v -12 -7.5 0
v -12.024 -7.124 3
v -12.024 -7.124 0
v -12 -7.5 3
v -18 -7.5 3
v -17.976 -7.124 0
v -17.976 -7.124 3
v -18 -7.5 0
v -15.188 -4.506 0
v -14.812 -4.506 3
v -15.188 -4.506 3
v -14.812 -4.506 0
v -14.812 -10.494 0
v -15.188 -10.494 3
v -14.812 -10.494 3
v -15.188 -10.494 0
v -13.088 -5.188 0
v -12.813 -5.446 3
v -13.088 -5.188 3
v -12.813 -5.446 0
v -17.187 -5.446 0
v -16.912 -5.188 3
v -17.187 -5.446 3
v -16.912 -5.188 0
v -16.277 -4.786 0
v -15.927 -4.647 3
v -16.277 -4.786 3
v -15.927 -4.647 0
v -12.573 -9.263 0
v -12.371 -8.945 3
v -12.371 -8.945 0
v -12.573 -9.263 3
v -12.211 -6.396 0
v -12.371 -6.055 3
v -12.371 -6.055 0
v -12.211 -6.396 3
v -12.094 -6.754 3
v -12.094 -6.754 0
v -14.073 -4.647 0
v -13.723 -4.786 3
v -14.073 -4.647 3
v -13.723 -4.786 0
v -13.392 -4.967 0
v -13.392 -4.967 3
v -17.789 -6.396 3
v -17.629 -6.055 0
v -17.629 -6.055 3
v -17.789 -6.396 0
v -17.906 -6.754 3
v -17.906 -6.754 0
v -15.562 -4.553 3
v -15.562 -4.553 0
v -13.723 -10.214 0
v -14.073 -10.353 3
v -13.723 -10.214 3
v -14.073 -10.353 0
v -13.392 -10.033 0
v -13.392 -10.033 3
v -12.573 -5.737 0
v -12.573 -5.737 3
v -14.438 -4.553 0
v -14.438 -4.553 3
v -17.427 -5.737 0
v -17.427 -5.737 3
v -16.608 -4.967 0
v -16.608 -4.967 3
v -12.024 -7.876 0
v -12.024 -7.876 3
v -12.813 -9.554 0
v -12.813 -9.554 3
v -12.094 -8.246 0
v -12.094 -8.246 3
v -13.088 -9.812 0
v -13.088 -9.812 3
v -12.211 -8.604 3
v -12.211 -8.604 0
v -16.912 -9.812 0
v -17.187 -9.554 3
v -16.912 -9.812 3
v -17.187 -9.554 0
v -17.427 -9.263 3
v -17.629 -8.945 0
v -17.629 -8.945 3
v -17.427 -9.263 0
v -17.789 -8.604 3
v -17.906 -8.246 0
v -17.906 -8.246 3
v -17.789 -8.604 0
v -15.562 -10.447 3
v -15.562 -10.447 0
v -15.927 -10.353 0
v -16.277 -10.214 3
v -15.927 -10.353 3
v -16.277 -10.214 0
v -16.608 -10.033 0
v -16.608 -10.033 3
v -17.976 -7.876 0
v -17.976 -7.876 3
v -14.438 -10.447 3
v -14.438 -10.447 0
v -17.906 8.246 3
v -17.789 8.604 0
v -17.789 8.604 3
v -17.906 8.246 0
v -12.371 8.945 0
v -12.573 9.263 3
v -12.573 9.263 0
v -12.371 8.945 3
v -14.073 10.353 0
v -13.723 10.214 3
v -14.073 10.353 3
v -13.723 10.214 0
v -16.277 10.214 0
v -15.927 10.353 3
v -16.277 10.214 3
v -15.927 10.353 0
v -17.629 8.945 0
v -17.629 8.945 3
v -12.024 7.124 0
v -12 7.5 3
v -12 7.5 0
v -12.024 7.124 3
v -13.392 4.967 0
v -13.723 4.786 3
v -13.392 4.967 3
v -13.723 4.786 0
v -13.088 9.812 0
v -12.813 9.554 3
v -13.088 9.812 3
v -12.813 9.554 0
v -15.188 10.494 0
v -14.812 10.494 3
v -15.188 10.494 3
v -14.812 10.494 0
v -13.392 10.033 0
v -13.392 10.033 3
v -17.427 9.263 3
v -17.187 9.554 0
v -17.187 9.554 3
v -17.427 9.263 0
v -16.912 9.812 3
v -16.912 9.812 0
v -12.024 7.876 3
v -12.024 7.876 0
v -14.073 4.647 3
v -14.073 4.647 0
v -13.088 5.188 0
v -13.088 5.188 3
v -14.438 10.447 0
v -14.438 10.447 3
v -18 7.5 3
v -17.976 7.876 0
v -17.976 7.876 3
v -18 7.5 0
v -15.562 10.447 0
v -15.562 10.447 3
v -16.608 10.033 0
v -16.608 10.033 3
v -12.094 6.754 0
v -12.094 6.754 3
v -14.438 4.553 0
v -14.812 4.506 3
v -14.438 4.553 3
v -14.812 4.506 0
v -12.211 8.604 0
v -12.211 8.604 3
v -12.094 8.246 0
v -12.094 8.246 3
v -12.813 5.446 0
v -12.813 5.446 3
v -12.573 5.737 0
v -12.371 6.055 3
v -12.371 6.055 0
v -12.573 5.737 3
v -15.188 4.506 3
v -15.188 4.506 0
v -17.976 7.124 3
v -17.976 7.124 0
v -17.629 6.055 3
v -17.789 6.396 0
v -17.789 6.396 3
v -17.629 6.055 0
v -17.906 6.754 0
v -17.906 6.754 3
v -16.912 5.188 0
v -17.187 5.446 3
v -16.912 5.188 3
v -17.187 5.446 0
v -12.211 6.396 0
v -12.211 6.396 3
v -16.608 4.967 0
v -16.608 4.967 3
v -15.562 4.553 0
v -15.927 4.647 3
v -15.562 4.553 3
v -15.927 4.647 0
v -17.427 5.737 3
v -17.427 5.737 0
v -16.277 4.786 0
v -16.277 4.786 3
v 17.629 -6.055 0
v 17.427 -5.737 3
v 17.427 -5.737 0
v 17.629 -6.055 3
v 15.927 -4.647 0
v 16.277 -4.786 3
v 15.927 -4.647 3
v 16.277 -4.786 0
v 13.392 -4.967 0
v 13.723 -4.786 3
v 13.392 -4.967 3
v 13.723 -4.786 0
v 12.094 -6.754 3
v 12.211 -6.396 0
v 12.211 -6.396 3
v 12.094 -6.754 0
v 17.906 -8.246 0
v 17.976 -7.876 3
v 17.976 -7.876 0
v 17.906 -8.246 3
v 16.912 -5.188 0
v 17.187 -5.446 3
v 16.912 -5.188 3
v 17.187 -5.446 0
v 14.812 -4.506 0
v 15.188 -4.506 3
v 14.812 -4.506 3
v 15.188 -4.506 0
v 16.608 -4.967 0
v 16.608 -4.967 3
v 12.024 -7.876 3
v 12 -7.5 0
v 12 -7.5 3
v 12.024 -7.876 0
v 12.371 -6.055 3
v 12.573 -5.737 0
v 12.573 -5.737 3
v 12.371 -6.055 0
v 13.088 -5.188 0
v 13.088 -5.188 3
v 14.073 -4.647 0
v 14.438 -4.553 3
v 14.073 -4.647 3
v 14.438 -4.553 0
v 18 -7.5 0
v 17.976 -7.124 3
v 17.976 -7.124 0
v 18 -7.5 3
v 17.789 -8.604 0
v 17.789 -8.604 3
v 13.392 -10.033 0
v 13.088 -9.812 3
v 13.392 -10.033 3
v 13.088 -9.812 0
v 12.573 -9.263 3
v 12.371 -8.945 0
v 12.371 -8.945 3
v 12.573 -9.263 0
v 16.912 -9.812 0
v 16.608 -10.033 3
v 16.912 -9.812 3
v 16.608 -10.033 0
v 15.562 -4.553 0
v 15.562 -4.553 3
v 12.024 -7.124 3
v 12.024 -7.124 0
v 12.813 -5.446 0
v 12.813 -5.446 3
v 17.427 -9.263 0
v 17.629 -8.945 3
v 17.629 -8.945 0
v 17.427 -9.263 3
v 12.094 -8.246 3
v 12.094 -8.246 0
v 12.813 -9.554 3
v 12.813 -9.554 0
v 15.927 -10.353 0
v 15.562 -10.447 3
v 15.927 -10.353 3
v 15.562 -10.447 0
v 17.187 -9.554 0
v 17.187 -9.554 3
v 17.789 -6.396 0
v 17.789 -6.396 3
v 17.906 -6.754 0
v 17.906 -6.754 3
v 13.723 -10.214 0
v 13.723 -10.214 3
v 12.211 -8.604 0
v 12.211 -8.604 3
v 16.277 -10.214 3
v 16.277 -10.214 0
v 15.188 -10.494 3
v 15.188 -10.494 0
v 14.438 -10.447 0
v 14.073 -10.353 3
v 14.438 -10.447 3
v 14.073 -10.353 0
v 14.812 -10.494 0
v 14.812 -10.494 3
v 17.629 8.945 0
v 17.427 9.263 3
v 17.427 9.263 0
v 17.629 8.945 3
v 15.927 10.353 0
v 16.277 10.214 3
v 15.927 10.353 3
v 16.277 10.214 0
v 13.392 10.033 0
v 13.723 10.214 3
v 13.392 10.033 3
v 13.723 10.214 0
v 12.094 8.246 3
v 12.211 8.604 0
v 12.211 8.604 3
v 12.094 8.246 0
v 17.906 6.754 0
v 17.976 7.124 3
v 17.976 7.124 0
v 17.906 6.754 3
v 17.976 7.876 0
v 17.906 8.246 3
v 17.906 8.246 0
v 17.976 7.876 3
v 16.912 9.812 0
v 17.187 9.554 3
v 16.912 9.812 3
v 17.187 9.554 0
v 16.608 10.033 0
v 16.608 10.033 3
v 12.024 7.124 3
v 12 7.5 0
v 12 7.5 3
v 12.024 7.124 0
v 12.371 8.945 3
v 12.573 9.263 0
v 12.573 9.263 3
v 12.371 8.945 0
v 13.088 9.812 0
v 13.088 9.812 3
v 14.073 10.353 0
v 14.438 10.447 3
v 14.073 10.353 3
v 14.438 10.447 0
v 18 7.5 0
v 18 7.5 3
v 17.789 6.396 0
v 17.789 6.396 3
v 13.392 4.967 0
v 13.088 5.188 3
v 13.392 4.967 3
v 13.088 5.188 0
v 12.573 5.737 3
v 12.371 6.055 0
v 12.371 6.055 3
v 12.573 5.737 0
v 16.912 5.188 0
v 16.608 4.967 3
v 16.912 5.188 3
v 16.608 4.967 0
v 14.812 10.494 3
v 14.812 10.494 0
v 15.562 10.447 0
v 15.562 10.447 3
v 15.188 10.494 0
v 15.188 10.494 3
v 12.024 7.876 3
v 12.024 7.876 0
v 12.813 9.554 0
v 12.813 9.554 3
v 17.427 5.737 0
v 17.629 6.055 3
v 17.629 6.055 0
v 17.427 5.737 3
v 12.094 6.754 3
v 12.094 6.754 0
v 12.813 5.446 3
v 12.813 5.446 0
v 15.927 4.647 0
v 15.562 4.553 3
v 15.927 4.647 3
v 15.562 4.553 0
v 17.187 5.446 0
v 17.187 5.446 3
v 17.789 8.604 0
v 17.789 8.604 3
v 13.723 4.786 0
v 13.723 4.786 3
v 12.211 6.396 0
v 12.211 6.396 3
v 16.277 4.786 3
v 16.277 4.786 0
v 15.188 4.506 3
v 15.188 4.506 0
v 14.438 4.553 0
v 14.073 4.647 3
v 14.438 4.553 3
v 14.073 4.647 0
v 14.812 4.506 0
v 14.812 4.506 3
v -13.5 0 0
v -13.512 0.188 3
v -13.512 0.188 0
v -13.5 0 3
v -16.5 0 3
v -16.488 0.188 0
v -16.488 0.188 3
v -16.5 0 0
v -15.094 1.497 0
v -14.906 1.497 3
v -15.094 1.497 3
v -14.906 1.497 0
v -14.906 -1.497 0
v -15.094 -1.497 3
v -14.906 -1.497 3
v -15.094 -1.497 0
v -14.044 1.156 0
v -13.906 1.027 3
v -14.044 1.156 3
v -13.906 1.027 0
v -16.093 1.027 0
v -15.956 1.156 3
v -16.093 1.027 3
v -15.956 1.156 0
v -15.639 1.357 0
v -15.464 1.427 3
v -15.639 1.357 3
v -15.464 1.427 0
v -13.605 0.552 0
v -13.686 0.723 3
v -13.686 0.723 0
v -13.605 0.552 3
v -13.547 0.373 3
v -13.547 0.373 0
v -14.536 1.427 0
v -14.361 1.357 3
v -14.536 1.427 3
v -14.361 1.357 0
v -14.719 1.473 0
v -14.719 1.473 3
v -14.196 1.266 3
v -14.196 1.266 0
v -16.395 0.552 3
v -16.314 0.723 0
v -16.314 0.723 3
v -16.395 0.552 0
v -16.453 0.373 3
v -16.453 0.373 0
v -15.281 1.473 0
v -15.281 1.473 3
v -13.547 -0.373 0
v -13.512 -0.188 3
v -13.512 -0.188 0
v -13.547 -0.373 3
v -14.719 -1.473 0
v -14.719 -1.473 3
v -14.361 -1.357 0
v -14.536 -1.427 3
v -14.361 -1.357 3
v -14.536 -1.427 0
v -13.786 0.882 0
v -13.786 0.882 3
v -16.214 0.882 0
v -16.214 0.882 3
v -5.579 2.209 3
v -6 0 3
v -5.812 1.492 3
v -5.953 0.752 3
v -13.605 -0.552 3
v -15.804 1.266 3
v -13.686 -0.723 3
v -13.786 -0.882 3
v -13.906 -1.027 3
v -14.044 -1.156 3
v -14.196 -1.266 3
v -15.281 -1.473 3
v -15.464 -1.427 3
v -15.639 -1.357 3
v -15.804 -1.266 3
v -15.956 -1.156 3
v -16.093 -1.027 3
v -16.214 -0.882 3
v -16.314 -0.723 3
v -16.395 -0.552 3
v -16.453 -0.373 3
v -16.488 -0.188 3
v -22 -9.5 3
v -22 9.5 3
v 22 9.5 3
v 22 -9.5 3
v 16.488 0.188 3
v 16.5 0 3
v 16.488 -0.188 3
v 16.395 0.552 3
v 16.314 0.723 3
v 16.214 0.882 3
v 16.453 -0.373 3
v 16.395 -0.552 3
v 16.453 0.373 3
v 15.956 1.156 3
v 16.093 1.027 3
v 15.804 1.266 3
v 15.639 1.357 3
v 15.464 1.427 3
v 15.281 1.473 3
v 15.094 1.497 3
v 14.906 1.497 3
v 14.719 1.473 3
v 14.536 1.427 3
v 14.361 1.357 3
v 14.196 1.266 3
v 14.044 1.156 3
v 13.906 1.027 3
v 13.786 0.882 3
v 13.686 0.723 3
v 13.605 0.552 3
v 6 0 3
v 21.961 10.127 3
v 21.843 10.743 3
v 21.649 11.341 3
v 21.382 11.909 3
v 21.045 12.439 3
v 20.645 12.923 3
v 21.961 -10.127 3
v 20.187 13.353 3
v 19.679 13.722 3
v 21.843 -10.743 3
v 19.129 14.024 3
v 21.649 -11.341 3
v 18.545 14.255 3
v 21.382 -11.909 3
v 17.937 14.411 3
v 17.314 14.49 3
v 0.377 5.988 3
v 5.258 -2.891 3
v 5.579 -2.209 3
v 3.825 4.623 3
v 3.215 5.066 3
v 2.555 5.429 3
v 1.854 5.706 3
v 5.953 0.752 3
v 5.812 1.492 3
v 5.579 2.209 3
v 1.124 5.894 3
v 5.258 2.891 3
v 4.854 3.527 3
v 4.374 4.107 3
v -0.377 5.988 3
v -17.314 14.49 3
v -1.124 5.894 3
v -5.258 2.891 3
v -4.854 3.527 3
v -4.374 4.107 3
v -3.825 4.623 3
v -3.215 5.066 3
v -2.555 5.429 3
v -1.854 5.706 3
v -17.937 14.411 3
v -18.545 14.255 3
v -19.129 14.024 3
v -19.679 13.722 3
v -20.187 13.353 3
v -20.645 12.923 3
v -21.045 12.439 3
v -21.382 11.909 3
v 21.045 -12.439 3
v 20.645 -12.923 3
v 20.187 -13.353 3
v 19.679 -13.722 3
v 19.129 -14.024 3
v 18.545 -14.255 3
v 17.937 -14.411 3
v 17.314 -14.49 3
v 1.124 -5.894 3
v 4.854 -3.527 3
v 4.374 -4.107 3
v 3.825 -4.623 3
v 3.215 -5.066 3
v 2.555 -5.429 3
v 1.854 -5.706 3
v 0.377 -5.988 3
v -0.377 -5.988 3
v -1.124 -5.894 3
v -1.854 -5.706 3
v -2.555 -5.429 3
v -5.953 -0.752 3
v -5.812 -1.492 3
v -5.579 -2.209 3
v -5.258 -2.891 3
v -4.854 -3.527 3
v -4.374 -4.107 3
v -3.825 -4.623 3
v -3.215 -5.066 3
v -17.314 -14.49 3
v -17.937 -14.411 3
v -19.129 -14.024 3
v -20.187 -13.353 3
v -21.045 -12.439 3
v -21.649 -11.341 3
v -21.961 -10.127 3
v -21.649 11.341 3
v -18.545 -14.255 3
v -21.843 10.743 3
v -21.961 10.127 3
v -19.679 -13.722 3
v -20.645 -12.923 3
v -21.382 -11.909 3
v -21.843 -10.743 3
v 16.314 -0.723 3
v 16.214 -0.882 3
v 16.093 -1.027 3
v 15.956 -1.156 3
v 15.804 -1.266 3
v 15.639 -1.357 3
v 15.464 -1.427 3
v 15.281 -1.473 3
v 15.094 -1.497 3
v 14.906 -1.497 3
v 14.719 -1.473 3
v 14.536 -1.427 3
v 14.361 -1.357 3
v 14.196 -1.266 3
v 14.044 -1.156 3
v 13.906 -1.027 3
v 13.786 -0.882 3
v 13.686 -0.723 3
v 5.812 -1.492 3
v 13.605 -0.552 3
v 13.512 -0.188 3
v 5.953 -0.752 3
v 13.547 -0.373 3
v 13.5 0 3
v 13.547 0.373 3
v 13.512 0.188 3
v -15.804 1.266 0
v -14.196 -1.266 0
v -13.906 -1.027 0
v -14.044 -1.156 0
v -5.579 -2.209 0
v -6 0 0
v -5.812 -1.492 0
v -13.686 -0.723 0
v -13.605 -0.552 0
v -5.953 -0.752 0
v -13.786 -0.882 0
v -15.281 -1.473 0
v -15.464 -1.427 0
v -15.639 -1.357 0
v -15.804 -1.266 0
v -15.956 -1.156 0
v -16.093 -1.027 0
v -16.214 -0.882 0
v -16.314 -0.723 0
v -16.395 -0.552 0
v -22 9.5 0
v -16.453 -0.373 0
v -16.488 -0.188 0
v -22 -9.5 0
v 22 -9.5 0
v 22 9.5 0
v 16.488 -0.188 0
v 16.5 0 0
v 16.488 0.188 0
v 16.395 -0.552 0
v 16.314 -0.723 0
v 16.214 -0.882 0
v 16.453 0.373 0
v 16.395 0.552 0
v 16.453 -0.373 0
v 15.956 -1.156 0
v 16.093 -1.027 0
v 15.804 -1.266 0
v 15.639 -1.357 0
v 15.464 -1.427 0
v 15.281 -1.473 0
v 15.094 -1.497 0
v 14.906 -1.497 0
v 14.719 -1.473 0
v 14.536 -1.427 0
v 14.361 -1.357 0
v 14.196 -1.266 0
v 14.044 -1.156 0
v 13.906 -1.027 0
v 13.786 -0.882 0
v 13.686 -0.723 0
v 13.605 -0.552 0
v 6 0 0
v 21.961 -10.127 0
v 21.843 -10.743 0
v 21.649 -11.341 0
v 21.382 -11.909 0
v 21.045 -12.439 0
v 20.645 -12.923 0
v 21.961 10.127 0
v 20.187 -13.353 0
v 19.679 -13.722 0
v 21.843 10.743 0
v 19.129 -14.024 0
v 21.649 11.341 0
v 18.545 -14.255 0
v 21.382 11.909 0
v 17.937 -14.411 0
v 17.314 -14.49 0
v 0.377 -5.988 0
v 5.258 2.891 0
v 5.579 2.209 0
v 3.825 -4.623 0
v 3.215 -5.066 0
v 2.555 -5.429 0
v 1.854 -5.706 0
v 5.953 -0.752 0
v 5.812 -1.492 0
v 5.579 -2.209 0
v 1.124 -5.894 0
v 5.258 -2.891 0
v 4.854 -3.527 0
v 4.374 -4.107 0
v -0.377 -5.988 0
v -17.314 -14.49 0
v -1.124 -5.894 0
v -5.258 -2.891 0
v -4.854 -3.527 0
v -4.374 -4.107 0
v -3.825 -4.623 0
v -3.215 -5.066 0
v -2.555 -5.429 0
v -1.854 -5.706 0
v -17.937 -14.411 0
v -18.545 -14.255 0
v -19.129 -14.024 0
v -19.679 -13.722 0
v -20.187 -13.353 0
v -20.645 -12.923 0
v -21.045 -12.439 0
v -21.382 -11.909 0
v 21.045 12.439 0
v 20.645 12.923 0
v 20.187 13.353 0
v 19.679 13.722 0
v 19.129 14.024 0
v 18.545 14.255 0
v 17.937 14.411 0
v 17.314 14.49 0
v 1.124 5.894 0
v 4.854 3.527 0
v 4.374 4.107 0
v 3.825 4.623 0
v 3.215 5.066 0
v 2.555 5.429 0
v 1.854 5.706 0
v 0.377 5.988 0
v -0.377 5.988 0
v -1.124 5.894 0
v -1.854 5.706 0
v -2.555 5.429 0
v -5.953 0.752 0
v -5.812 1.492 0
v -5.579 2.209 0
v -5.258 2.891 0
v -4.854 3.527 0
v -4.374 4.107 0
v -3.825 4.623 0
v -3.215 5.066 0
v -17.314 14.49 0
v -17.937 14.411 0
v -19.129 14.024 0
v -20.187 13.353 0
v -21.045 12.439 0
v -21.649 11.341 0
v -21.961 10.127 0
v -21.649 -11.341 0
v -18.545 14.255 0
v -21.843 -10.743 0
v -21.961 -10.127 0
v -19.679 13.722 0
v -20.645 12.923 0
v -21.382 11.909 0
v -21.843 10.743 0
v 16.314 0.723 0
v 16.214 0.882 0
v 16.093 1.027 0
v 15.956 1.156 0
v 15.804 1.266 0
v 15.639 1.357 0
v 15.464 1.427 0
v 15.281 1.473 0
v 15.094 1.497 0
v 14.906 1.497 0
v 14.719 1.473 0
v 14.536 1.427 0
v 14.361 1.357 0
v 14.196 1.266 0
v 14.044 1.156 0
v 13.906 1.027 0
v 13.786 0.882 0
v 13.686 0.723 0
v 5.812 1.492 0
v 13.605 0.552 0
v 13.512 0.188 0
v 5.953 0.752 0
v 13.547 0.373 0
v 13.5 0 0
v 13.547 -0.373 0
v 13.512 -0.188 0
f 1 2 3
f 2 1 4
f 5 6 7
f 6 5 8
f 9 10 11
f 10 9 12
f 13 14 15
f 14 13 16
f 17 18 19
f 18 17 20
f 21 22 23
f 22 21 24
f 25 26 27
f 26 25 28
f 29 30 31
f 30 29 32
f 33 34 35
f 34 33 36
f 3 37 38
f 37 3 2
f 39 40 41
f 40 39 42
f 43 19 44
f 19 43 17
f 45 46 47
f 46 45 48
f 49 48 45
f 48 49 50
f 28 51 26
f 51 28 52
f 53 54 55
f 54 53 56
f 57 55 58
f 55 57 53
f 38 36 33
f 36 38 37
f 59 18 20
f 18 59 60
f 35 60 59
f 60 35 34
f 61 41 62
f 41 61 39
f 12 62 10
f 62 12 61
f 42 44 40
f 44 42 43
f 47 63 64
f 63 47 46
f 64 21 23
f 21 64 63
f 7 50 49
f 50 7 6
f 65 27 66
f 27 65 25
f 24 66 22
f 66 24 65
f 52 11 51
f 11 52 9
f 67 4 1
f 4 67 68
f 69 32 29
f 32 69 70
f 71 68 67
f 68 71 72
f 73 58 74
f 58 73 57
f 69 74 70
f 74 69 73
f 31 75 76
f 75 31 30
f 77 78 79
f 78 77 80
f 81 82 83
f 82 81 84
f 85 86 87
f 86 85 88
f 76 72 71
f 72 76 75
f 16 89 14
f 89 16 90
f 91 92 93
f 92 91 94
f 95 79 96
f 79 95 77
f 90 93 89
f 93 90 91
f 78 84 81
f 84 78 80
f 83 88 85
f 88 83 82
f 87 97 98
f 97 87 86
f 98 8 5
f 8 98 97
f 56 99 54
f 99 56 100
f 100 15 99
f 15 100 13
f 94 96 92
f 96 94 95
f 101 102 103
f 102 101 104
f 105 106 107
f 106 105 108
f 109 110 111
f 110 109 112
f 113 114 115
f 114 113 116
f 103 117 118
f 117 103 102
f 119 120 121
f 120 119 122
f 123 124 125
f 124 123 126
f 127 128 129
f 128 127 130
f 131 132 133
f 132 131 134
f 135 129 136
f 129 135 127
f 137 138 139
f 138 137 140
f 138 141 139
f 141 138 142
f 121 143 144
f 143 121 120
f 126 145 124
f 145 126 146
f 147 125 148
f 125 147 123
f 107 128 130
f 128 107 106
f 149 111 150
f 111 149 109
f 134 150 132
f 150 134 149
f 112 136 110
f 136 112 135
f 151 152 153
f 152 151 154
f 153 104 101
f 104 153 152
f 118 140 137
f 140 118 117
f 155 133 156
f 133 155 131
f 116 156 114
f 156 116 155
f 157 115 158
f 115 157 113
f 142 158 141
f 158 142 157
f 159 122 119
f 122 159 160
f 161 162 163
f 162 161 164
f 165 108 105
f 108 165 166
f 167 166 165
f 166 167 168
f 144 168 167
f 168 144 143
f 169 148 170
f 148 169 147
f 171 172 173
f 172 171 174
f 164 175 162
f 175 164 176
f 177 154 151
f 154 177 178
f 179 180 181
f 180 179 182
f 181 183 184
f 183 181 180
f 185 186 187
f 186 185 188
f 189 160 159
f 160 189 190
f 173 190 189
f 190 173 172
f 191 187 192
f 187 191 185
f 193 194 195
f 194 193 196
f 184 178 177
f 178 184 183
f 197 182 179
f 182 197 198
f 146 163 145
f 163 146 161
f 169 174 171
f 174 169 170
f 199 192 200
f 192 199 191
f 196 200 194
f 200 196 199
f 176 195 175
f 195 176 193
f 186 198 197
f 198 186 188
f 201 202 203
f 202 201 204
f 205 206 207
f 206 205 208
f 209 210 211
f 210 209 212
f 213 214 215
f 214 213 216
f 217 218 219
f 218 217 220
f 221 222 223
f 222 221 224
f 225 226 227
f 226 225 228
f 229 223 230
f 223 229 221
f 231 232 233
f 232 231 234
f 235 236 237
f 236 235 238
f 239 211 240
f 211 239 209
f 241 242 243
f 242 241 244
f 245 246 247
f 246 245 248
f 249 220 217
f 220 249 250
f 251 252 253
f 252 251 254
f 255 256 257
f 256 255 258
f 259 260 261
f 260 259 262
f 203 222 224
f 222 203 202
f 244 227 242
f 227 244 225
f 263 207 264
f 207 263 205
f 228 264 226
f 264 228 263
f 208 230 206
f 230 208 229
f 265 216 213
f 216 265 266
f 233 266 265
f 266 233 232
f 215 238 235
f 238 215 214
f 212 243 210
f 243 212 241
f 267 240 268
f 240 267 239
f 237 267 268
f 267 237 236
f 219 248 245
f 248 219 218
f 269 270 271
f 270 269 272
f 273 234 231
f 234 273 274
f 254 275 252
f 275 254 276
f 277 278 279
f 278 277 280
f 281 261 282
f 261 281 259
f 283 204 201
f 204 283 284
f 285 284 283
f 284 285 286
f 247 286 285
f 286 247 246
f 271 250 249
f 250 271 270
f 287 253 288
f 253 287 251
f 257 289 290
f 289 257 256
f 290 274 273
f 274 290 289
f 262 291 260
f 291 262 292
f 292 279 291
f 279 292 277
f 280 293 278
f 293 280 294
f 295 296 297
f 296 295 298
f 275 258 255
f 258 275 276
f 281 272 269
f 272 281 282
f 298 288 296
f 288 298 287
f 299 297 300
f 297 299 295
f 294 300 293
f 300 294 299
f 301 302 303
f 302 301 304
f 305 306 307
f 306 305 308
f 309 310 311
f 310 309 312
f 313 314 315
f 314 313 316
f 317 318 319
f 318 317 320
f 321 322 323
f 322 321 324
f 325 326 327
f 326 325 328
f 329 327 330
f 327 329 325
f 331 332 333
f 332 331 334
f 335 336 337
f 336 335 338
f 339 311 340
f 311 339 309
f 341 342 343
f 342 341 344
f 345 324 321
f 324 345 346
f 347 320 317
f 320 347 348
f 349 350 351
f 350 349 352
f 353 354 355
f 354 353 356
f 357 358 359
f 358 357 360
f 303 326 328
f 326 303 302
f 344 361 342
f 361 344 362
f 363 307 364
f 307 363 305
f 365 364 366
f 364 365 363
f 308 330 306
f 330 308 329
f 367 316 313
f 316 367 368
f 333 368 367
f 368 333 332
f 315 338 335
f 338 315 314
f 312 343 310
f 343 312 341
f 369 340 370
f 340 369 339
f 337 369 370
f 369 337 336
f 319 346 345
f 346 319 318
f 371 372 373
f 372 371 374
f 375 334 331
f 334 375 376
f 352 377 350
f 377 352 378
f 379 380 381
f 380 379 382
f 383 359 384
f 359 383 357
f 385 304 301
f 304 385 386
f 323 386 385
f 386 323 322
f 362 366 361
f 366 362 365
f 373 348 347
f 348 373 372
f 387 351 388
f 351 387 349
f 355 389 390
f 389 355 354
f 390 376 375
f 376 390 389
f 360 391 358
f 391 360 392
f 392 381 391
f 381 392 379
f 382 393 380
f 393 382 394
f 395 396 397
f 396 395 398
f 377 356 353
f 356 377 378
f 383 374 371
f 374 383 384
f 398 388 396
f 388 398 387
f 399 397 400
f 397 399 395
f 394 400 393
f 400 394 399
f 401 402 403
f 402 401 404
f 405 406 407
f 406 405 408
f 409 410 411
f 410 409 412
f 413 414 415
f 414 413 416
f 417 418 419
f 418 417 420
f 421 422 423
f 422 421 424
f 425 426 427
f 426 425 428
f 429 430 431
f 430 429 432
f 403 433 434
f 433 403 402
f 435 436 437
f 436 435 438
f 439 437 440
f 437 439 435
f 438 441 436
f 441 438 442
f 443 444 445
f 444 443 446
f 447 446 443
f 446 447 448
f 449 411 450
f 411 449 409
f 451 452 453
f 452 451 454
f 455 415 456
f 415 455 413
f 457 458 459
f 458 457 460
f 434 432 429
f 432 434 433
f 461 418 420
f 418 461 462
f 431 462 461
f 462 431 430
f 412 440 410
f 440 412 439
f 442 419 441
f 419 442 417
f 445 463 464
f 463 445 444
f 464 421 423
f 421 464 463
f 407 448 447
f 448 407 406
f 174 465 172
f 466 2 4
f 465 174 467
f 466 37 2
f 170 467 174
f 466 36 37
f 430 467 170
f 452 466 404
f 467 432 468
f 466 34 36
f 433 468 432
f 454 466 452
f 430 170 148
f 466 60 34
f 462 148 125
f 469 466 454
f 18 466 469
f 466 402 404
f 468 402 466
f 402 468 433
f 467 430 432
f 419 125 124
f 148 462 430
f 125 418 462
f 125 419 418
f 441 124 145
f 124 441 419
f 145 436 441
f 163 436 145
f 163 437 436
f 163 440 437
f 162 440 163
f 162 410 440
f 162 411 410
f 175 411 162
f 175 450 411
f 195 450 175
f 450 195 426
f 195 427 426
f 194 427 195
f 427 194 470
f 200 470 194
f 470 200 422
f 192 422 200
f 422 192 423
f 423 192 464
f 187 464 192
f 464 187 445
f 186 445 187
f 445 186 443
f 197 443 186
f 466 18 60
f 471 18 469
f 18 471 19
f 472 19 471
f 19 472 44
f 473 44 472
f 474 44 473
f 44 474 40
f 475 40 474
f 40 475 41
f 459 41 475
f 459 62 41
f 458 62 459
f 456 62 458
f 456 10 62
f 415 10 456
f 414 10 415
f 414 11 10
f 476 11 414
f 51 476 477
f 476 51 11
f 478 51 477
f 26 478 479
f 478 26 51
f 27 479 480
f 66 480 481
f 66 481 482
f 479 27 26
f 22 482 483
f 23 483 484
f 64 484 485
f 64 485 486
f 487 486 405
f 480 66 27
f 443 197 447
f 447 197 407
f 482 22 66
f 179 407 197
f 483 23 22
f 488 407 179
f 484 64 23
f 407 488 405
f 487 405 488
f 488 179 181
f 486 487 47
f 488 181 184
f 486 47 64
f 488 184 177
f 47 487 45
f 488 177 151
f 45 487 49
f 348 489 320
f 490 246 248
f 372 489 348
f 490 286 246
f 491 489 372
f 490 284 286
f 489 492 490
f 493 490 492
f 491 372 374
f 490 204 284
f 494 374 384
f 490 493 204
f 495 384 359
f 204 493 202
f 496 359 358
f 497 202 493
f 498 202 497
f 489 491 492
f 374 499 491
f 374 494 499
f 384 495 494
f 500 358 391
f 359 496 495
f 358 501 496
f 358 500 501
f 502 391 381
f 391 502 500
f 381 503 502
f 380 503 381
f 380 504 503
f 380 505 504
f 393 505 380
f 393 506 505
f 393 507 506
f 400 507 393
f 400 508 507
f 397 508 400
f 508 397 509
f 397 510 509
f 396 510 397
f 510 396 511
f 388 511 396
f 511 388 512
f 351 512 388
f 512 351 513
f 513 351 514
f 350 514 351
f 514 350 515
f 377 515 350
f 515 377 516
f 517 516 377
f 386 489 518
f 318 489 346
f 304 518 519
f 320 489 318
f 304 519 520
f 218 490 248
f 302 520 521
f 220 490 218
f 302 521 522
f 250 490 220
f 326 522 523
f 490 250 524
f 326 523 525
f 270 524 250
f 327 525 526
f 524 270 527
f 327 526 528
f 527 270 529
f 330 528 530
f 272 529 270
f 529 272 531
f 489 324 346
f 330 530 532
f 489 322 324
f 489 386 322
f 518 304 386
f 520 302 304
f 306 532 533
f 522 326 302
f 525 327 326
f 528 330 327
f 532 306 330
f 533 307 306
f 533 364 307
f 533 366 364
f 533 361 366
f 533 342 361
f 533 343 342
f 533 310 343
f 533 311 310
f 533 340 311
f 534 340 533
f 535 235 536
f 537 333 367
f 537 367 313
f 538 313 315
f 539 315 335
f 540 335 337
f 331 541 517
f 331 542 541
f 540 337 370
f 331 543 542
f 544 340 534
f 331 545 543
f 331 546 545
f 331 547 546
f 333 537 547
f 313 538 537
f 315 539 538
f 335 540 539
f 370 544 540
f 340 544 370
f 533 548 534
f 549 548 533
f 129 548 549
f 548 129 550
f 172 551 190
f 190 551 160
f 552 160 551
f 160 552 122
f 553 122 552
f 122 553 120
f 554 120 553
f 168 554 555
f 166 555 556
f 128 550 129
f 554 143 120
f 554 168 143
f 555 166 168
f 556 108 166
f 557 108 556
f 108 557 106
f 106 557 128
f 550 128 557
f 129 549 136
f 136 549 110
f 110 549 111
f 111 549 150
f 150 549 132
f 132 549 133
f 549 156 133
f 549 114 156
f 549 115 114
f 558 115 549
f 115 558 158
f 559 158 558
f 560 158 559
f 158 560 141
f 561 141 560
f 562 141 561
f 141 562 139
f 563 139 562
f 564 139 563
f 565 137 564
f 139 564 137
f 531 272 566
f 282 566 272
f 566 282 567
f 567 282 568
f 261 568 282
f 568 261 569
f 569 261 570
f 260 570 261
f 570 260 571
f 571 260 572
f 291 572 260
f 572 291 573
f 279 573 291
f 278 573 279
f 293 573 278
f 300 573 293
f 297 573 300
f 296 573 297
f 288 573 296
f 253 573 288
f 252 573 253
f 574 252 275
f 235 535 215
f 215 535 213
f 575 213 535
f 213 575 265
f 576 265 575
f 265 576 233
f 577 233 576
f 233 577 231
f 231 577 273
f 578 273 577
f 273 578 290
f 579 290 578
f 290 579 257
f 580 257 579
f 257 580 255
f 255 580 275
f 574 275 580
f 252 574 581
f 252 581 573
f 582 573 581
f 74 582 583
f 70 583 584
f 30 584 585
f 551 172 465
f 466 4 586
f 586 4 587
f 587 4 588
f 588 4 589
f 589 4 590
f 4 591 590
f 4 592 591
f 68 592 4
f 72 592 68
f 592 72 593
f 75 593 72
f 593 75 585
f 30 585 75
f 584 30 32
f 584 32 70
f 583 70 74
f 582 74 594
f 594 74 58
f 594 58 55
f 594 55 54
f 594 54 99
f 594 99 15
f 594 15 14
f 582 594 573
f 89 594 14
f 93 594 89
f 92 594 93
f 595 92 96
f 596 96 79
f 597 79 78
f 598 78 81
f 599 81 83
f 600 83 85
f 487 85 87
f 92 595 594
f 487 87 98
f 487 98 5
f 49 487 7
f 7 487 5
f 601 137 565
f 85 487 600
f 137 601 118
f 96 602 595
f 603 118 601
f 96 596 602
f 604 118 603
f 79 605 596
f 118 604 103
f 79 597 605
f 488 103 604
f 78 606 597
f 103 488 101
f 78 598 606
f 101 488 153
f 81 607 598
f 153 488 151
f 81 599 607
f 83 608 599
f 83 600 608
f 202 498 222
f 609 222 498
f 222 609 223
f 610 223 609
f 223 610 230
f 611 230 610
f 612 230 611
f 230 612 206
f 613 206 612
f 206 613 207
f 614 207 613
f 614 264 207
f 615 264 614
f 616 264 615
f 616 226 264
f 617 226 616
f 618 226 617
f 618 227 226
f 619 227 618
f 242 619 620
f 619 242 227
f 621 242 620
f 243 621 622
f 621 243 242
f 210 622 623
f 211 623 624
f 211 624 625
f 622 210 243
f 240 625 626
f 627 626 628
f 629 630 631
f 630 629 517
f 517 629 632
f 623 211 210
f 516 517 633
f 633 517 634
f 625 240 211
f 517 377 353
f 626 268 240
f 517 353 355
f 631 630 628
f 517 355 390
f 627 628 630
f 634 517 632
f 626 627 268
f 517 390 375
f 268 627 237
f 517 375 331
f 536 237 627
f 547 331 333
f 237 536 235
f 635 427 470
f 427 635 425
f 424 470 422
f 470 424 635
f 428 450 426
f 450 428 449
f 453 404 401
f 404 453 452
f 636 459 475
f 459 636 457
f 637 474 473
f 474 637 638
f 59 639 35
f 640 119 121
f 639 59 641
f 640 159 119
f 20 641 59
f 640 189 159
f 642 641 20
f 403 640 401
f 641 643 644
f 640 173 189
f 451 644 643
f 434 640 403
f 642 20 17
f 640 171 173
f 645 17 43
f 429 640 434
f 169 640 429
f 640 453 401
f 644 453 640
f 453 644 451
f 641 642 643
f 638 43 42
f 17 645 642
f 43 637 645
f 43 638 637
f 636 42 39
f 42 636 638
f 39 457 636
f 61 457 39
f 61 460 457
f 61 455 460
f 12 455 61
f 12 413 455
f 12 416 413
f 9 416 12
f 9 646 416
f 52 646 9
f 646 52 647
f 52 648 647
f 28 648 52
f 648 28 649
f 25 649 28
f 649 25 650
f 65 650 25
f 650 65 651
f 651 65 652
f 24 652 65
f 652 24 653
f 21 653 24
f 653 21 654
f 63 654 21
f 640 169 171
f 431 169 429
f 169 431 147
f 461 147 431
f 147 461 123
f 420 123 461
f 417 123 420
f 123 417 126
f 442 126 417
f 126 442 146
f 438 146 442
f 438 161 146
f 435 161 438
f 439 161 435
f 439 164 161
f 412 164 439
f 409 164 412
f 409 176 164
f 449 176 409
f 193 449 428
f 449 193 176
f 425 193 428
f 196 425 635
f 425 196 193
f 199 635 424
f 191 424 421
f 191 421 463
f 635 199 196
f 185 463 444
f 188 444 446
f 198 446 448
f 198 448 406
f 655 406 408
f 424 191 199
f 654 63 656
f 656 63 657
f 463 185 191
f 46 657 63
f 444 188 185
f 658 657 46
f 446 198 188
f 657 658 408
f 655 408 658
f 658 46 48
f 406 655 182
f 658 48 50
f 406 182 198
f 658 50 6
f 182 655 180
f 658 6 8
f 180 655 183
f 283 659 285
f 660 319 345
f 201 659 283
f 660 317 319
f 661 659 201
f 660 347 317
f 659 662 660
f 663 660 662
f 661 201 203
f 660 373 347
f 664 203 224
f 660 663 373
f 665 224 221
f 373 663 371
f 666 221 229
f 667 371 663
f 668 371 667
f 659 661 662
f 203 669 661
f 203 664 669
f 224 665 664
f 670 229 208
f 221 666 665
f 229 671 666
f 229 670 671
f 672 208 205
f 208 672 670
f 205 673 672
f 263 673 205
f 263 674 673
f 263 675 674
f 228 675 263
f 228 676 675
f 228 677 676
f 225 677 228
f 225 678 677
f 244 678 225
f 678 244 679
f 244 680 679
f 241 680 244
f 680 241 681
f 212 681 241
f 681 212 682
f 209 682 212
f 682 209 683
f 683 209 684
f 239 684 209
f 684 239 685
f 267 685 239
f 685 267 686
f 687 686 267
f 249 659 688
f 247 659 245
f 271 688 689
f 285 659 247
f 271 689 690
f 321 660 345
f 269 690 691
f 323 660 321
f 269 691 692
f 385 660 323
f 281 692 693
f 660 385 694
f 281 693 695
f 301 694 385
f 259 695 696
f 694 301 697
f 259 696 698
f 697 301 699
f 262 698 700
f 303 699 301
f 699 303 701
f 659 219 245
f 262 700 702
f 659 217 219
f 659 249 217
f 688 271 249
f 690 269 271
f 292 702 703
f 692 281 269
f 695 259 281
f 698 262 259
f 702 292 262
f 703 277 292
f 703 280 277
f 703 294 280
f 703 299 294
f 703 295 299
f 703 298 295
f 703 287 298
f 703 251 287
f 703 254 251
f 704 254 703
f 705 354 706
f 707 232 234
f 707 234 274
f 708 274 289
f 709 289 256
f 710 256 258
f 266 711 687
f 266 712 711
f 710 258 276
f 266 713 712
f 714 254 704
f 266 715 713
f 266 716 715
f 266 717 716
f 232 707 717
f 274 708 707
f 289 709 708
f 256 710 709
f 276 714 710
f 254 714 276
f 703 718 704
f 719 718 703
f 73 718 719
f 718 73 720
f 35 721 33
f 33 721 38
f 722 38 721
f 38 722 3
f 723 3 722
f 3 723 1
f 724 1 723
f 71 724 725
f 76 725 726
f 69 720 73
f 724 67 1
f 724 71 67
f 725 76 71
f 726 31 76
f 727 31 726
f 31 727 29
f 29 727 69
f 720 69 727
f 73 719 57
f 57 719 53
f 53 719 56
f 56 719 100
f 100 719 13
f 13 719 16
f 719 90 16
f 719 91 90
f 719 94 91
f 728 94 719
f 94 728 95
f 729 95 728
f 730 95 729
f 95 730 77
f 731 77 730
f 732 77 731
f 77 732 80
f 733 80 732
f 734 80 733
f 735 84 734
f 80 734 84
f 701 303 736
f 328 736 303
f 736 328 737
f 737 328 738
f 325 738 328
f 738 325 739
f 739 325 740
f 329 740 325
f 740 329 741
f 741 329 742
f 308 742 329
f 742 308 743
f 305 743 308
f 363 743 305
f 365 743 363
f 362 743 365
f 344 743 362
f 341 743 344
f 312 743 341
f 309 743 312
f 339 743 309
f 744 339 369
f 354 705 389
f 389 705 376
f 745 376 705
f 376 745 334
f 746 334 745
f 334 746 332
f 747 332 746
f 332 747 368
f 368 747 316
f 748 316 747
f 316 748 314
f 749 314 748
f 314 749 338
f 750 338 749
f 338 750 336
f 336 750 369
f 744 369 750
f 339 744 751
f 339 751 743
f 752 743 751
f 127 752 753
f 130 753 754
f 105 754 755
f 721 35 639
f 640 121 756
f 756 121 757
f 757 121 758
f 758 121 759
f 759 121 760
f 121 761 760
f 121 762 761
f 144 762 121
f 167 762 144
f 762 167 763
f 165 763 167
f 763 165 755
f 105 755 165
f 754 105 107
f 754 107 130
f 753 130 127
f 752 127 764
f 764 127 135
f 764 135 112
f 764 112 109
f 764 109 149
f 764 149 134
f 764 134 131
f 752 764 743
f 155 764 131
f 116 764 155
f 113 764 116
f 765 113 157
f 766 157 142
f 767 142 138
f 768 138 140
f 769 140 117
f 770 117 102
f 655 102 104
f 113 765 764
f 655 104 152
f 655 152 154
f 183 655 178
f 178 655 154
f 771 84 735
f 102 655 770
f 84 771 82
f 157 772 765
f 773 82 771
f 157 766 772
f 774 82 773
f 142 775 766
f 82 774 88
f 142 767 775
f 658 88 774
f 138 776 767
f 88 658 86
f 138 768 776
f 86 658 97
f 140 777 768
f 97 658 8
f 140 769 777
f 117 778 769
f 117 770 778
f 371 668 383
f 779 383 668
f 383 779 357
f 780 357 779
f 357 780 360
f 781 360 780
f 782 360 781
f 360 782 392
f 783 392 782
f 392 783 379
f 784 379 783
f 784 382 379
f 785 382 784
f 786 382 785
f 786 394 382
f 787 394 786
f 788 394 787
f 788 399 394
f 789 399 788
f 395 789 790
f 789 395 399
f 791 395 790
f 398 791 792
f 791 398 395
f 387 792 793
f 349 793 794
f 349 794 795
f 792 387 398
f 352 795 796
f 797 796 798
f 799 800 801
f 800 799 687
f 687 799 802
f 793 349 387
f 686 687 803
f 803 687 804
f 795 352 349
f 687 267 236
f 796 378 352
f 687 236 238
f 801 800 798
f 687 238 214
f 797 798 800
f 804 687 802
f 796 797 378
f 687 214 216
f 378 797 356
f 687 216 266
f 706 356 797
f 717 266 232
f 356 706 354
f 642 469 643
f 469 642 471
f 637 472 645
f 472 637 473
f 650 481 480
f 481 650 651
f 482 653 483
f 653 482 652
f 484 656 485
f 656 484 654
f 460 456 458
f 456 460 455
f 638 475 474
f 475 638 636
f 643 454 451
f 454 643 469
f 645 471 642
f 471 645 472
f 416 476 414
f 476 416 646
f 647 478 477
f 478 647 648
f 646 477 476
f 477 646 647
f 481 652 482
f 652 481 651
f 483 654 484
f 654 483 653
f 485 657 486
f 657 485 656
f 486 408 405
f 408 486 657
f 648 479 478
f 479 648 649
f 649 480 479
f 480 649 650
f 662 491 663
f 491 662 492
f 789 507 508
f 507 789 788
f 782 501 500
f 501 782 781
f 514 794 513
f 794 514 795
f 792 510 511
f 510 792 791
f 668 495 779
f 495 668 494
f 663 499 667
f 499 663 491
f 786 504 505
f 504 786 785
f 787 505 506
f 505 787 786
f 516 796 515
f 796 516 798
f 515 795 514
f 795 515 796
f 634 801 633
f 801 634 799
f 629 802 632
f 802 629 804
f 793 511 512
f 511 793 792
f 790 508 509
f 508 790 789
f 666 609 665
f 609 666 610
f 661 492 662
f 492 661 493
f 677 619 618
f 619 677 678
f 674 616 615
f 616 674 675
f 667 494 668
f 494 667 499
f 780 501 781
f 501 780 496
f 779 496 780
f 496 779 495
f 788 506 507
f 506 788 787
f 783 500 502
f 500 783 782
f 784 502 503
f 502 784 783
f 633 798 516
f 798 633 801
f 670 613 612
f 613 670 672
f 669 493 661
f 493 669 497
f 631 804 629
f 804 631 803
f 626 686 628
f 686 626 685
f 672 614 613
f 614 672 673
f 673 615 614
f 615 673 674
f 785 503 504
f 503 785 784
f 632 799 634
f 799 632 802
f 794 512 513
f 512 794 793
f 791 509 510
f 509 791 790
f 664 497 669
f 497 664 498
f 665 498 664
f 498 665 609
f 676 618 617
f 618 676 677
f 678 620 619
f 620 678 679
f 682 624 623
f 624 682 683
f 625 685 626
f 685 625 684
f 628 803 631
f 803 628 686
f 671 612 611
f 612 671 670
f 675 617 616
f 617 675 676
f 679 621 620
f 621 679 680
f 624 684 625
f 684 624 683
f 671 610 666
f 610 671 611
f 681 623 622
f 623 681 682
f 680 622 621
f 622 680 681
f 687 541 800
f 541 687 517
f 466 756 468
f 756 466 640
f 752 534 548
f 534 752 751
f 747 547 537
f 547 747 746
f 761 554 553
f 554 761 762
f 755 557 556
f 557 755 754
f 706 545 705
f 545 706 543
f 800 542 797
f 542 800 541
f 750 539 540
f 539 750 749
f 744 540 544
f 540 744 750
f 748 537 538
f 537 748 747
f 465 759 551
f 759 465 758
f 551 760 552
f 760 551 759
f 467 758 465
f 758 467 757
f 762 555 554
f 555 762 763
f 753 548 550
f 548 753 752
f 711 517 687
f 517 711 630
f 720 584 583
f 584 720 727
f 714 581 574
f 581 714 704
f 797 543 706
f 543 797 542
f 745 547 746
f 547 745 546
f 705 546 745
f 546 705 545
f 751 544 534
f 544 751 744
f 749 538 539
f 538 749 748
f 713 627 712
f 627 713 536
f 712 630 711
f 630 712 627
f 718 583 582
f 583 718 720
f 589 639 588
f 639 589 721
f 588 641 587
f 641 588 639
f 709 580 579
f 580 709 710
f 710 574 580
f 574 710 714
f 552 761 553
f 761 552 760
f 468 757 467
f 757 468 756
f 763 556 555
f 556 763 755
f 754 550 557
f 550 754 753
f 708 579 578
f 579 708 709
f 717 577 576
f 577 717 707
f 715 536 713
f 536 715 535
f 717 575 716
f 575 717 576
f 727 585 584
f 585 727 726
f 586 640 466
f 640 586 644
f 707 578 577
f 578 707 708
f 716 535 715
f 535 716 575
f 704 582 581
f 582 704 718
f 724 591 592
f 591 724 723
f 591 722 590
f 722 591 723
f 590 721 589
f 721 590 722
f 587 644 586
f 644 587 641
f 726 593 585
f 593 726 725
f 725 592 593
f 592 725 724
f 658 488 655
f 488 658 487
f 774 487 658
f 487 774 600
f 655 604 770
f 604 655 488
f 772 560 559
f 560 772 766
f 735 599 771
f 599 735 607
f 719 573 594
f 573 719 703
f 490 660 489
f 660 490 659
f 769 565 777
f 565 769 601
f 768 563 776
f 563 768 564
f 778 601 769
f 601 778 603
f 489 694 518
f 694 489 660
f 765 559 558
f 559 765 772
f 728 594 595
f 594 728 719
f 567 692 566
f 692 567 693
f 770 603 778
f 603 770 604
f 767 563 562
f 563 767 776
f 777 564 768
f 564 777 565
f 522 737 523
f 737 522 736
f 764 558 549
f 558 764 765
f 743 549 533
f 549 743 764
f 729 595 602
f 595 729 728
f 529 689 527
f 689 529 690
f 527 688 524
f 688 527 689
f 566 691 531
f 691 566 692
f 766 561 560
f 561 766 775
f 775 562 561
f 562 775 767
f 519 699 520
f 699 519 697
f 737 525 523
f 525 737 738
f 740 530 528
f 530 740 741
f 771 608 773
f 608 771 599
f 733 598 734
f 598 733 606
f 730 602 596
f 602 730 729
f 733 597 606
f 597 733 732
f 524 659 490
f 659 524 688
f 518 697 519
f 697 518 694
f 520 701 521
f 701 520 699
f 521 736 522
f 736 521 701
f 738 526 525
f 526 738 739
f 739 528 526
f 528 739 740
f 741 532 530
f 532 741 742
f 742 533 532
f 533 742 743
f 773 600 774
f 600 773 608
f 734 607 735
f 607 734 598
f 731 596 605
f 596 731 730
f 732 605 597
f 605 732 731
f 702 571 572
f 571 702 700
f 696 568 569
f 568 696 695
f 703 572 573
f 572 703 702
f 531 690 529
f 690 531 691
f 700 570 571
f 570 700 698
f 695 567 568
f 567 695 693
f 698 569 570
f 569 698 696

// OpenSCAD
$fn = 50;


difference() {
	union() {
		hull() {
			translate(v = [-17.0000000000, 9.5000000000, 0]) {
				cylinder(h = 3, r = 5);
			}
			translate(v = [17.0000000000, 9.5000000000, 0]) {
				cylinder(h = 3, r = 5);
			}
			translate(v = [-17.0000000000, -9.5000000000, 0]) {
				cylinder(h = 3, r = 5);
			}
			translate(v = [17.0000000000, -9.5000000000, 0]) {
				cylinder(h = 3, r = 5);
			}
		}
	}
	union() {
		#translate(v = [-15.0000000000, -7.5000000000, 0]) {
			cylinder(h = 3, r = 3.0000000000);
		}
		#translate(v = [-15.0000000000, 7.5000000000, 0]) {
			cylinder(h = 3, r = 3.0000000000);
		}
		#translate(v = [15.0000000000, -7.5000000000, 0]) {
			cylinder(h = 3, r = 3.0000000000);
		}
		#translate(v = [15.0000000000, 7.5000000000, 0]) {
			cylinder(h = 3, r = 3.0000000000);
		}
		#translate(v = [-15.0000000000, -7.5000000000, -100.0000000000]) {
			cylinder(h = 200, r = 3.0000000000);
		}
		#translate(v = [-15.0000000000, 7.5000000000, -100.0000000000]) {
			cylinder(h = 200, r = 3.0000000000);
		}
		#translate(v = [15.0000000000, -7.5000000000, -100.0000000000]) {
			cylinder(h = 200, r = 3.0000000000);
		}
		#translate(v = [15.0000000000, 7.5000000000, -100.0000000000]) {
			cylinder(h = 200, r = 3.0000000000);
		}
		#translate(v = [-15.0000000000, -7.5000000000, 0]) {
			cylinder(h = 3, r = 1.5000000000);
		}
		#translate(v = [-15.0000000000, 0.0000000000, 0]) {
			cylinder(h = 3, r = 1.5000000000);
		}
		#translate(v = [-15.0000000000, 7.5000000000, 0]) {
			cylinder(h = 3, r = 1.5000000000);
		}
		#translate(v = [15.0000000000, -7.5000000000, 0]) {
			cylinder(h = 3, r = 1.5000000000);
		}
		#translate(v = [15.0000000000, 0.0000000000, 0]) {
			cylinder(h = 3, r = 1.5000000000);
		}
		#translate(v = [15.0000000000, 7.5000000000, 0]) {
			cylinder(h = 3, r = 1.5000000000);
		}
		#translate(v = [-15.0000000000, -7.5000000000, 0]) {
			cylinder(h = 3, r = 1.5000000000);
		}
		#translate(v = [-15.0000000000, 0.0000000000, 0]) {
			cylinder(h = 3, r = 1.5000000000);
		}
		#translate(v = [-15.0000000000, 7.5000000000, 0]) {
			cylinder(h = 3, r = 1.5000000000);
		}
		#translate(v = [15.0000000000, -7.5000000000, 0]) {
			cylinder(h = 3, r = 1.5000000000);
		}
		#translate(v = [15.0000000000, 0.0000000000, 0]) {
			cylinder(h = 3, r = 1.5000000000);
		}
		#translate(v = [15.0000000000, 7.5000000000, 0]) {
			cylinder(h = 3, r = 1.5000000000);
		}
		#translate(v = [-15.0000000000, -7.5000000000, 0]) {
			cylinder(h = 3, r = 1.5000000000);
		}
		#translate(v = [-15.0000000000, 0.0000000000, 0]) {
			cylinder(h = 3, r = 1.5000000000);
		}
		#translate(v = [-15.0000000000, 7.5000000000, 0]) {
			cylinder(h = 3, r = 1.5000000000);
		}
		#translate(v = [15.0000000000, -7.5000000000, 0]) {
			cylinder(h = 3, r = 1.5000000000);
		}
		#translate(v = [15.0000000000, 0.0000000000, 0]) {
			cylinder(h = 3, r = 1.5000000000);
		}
		#translate(v = [15.0000000000, 7.5000000000, 0]) {
			cylinder(h = 3, r = 1.5000000000);
		}
		#cylinder(h = 3, r = 6.0000000000);
	}
}
